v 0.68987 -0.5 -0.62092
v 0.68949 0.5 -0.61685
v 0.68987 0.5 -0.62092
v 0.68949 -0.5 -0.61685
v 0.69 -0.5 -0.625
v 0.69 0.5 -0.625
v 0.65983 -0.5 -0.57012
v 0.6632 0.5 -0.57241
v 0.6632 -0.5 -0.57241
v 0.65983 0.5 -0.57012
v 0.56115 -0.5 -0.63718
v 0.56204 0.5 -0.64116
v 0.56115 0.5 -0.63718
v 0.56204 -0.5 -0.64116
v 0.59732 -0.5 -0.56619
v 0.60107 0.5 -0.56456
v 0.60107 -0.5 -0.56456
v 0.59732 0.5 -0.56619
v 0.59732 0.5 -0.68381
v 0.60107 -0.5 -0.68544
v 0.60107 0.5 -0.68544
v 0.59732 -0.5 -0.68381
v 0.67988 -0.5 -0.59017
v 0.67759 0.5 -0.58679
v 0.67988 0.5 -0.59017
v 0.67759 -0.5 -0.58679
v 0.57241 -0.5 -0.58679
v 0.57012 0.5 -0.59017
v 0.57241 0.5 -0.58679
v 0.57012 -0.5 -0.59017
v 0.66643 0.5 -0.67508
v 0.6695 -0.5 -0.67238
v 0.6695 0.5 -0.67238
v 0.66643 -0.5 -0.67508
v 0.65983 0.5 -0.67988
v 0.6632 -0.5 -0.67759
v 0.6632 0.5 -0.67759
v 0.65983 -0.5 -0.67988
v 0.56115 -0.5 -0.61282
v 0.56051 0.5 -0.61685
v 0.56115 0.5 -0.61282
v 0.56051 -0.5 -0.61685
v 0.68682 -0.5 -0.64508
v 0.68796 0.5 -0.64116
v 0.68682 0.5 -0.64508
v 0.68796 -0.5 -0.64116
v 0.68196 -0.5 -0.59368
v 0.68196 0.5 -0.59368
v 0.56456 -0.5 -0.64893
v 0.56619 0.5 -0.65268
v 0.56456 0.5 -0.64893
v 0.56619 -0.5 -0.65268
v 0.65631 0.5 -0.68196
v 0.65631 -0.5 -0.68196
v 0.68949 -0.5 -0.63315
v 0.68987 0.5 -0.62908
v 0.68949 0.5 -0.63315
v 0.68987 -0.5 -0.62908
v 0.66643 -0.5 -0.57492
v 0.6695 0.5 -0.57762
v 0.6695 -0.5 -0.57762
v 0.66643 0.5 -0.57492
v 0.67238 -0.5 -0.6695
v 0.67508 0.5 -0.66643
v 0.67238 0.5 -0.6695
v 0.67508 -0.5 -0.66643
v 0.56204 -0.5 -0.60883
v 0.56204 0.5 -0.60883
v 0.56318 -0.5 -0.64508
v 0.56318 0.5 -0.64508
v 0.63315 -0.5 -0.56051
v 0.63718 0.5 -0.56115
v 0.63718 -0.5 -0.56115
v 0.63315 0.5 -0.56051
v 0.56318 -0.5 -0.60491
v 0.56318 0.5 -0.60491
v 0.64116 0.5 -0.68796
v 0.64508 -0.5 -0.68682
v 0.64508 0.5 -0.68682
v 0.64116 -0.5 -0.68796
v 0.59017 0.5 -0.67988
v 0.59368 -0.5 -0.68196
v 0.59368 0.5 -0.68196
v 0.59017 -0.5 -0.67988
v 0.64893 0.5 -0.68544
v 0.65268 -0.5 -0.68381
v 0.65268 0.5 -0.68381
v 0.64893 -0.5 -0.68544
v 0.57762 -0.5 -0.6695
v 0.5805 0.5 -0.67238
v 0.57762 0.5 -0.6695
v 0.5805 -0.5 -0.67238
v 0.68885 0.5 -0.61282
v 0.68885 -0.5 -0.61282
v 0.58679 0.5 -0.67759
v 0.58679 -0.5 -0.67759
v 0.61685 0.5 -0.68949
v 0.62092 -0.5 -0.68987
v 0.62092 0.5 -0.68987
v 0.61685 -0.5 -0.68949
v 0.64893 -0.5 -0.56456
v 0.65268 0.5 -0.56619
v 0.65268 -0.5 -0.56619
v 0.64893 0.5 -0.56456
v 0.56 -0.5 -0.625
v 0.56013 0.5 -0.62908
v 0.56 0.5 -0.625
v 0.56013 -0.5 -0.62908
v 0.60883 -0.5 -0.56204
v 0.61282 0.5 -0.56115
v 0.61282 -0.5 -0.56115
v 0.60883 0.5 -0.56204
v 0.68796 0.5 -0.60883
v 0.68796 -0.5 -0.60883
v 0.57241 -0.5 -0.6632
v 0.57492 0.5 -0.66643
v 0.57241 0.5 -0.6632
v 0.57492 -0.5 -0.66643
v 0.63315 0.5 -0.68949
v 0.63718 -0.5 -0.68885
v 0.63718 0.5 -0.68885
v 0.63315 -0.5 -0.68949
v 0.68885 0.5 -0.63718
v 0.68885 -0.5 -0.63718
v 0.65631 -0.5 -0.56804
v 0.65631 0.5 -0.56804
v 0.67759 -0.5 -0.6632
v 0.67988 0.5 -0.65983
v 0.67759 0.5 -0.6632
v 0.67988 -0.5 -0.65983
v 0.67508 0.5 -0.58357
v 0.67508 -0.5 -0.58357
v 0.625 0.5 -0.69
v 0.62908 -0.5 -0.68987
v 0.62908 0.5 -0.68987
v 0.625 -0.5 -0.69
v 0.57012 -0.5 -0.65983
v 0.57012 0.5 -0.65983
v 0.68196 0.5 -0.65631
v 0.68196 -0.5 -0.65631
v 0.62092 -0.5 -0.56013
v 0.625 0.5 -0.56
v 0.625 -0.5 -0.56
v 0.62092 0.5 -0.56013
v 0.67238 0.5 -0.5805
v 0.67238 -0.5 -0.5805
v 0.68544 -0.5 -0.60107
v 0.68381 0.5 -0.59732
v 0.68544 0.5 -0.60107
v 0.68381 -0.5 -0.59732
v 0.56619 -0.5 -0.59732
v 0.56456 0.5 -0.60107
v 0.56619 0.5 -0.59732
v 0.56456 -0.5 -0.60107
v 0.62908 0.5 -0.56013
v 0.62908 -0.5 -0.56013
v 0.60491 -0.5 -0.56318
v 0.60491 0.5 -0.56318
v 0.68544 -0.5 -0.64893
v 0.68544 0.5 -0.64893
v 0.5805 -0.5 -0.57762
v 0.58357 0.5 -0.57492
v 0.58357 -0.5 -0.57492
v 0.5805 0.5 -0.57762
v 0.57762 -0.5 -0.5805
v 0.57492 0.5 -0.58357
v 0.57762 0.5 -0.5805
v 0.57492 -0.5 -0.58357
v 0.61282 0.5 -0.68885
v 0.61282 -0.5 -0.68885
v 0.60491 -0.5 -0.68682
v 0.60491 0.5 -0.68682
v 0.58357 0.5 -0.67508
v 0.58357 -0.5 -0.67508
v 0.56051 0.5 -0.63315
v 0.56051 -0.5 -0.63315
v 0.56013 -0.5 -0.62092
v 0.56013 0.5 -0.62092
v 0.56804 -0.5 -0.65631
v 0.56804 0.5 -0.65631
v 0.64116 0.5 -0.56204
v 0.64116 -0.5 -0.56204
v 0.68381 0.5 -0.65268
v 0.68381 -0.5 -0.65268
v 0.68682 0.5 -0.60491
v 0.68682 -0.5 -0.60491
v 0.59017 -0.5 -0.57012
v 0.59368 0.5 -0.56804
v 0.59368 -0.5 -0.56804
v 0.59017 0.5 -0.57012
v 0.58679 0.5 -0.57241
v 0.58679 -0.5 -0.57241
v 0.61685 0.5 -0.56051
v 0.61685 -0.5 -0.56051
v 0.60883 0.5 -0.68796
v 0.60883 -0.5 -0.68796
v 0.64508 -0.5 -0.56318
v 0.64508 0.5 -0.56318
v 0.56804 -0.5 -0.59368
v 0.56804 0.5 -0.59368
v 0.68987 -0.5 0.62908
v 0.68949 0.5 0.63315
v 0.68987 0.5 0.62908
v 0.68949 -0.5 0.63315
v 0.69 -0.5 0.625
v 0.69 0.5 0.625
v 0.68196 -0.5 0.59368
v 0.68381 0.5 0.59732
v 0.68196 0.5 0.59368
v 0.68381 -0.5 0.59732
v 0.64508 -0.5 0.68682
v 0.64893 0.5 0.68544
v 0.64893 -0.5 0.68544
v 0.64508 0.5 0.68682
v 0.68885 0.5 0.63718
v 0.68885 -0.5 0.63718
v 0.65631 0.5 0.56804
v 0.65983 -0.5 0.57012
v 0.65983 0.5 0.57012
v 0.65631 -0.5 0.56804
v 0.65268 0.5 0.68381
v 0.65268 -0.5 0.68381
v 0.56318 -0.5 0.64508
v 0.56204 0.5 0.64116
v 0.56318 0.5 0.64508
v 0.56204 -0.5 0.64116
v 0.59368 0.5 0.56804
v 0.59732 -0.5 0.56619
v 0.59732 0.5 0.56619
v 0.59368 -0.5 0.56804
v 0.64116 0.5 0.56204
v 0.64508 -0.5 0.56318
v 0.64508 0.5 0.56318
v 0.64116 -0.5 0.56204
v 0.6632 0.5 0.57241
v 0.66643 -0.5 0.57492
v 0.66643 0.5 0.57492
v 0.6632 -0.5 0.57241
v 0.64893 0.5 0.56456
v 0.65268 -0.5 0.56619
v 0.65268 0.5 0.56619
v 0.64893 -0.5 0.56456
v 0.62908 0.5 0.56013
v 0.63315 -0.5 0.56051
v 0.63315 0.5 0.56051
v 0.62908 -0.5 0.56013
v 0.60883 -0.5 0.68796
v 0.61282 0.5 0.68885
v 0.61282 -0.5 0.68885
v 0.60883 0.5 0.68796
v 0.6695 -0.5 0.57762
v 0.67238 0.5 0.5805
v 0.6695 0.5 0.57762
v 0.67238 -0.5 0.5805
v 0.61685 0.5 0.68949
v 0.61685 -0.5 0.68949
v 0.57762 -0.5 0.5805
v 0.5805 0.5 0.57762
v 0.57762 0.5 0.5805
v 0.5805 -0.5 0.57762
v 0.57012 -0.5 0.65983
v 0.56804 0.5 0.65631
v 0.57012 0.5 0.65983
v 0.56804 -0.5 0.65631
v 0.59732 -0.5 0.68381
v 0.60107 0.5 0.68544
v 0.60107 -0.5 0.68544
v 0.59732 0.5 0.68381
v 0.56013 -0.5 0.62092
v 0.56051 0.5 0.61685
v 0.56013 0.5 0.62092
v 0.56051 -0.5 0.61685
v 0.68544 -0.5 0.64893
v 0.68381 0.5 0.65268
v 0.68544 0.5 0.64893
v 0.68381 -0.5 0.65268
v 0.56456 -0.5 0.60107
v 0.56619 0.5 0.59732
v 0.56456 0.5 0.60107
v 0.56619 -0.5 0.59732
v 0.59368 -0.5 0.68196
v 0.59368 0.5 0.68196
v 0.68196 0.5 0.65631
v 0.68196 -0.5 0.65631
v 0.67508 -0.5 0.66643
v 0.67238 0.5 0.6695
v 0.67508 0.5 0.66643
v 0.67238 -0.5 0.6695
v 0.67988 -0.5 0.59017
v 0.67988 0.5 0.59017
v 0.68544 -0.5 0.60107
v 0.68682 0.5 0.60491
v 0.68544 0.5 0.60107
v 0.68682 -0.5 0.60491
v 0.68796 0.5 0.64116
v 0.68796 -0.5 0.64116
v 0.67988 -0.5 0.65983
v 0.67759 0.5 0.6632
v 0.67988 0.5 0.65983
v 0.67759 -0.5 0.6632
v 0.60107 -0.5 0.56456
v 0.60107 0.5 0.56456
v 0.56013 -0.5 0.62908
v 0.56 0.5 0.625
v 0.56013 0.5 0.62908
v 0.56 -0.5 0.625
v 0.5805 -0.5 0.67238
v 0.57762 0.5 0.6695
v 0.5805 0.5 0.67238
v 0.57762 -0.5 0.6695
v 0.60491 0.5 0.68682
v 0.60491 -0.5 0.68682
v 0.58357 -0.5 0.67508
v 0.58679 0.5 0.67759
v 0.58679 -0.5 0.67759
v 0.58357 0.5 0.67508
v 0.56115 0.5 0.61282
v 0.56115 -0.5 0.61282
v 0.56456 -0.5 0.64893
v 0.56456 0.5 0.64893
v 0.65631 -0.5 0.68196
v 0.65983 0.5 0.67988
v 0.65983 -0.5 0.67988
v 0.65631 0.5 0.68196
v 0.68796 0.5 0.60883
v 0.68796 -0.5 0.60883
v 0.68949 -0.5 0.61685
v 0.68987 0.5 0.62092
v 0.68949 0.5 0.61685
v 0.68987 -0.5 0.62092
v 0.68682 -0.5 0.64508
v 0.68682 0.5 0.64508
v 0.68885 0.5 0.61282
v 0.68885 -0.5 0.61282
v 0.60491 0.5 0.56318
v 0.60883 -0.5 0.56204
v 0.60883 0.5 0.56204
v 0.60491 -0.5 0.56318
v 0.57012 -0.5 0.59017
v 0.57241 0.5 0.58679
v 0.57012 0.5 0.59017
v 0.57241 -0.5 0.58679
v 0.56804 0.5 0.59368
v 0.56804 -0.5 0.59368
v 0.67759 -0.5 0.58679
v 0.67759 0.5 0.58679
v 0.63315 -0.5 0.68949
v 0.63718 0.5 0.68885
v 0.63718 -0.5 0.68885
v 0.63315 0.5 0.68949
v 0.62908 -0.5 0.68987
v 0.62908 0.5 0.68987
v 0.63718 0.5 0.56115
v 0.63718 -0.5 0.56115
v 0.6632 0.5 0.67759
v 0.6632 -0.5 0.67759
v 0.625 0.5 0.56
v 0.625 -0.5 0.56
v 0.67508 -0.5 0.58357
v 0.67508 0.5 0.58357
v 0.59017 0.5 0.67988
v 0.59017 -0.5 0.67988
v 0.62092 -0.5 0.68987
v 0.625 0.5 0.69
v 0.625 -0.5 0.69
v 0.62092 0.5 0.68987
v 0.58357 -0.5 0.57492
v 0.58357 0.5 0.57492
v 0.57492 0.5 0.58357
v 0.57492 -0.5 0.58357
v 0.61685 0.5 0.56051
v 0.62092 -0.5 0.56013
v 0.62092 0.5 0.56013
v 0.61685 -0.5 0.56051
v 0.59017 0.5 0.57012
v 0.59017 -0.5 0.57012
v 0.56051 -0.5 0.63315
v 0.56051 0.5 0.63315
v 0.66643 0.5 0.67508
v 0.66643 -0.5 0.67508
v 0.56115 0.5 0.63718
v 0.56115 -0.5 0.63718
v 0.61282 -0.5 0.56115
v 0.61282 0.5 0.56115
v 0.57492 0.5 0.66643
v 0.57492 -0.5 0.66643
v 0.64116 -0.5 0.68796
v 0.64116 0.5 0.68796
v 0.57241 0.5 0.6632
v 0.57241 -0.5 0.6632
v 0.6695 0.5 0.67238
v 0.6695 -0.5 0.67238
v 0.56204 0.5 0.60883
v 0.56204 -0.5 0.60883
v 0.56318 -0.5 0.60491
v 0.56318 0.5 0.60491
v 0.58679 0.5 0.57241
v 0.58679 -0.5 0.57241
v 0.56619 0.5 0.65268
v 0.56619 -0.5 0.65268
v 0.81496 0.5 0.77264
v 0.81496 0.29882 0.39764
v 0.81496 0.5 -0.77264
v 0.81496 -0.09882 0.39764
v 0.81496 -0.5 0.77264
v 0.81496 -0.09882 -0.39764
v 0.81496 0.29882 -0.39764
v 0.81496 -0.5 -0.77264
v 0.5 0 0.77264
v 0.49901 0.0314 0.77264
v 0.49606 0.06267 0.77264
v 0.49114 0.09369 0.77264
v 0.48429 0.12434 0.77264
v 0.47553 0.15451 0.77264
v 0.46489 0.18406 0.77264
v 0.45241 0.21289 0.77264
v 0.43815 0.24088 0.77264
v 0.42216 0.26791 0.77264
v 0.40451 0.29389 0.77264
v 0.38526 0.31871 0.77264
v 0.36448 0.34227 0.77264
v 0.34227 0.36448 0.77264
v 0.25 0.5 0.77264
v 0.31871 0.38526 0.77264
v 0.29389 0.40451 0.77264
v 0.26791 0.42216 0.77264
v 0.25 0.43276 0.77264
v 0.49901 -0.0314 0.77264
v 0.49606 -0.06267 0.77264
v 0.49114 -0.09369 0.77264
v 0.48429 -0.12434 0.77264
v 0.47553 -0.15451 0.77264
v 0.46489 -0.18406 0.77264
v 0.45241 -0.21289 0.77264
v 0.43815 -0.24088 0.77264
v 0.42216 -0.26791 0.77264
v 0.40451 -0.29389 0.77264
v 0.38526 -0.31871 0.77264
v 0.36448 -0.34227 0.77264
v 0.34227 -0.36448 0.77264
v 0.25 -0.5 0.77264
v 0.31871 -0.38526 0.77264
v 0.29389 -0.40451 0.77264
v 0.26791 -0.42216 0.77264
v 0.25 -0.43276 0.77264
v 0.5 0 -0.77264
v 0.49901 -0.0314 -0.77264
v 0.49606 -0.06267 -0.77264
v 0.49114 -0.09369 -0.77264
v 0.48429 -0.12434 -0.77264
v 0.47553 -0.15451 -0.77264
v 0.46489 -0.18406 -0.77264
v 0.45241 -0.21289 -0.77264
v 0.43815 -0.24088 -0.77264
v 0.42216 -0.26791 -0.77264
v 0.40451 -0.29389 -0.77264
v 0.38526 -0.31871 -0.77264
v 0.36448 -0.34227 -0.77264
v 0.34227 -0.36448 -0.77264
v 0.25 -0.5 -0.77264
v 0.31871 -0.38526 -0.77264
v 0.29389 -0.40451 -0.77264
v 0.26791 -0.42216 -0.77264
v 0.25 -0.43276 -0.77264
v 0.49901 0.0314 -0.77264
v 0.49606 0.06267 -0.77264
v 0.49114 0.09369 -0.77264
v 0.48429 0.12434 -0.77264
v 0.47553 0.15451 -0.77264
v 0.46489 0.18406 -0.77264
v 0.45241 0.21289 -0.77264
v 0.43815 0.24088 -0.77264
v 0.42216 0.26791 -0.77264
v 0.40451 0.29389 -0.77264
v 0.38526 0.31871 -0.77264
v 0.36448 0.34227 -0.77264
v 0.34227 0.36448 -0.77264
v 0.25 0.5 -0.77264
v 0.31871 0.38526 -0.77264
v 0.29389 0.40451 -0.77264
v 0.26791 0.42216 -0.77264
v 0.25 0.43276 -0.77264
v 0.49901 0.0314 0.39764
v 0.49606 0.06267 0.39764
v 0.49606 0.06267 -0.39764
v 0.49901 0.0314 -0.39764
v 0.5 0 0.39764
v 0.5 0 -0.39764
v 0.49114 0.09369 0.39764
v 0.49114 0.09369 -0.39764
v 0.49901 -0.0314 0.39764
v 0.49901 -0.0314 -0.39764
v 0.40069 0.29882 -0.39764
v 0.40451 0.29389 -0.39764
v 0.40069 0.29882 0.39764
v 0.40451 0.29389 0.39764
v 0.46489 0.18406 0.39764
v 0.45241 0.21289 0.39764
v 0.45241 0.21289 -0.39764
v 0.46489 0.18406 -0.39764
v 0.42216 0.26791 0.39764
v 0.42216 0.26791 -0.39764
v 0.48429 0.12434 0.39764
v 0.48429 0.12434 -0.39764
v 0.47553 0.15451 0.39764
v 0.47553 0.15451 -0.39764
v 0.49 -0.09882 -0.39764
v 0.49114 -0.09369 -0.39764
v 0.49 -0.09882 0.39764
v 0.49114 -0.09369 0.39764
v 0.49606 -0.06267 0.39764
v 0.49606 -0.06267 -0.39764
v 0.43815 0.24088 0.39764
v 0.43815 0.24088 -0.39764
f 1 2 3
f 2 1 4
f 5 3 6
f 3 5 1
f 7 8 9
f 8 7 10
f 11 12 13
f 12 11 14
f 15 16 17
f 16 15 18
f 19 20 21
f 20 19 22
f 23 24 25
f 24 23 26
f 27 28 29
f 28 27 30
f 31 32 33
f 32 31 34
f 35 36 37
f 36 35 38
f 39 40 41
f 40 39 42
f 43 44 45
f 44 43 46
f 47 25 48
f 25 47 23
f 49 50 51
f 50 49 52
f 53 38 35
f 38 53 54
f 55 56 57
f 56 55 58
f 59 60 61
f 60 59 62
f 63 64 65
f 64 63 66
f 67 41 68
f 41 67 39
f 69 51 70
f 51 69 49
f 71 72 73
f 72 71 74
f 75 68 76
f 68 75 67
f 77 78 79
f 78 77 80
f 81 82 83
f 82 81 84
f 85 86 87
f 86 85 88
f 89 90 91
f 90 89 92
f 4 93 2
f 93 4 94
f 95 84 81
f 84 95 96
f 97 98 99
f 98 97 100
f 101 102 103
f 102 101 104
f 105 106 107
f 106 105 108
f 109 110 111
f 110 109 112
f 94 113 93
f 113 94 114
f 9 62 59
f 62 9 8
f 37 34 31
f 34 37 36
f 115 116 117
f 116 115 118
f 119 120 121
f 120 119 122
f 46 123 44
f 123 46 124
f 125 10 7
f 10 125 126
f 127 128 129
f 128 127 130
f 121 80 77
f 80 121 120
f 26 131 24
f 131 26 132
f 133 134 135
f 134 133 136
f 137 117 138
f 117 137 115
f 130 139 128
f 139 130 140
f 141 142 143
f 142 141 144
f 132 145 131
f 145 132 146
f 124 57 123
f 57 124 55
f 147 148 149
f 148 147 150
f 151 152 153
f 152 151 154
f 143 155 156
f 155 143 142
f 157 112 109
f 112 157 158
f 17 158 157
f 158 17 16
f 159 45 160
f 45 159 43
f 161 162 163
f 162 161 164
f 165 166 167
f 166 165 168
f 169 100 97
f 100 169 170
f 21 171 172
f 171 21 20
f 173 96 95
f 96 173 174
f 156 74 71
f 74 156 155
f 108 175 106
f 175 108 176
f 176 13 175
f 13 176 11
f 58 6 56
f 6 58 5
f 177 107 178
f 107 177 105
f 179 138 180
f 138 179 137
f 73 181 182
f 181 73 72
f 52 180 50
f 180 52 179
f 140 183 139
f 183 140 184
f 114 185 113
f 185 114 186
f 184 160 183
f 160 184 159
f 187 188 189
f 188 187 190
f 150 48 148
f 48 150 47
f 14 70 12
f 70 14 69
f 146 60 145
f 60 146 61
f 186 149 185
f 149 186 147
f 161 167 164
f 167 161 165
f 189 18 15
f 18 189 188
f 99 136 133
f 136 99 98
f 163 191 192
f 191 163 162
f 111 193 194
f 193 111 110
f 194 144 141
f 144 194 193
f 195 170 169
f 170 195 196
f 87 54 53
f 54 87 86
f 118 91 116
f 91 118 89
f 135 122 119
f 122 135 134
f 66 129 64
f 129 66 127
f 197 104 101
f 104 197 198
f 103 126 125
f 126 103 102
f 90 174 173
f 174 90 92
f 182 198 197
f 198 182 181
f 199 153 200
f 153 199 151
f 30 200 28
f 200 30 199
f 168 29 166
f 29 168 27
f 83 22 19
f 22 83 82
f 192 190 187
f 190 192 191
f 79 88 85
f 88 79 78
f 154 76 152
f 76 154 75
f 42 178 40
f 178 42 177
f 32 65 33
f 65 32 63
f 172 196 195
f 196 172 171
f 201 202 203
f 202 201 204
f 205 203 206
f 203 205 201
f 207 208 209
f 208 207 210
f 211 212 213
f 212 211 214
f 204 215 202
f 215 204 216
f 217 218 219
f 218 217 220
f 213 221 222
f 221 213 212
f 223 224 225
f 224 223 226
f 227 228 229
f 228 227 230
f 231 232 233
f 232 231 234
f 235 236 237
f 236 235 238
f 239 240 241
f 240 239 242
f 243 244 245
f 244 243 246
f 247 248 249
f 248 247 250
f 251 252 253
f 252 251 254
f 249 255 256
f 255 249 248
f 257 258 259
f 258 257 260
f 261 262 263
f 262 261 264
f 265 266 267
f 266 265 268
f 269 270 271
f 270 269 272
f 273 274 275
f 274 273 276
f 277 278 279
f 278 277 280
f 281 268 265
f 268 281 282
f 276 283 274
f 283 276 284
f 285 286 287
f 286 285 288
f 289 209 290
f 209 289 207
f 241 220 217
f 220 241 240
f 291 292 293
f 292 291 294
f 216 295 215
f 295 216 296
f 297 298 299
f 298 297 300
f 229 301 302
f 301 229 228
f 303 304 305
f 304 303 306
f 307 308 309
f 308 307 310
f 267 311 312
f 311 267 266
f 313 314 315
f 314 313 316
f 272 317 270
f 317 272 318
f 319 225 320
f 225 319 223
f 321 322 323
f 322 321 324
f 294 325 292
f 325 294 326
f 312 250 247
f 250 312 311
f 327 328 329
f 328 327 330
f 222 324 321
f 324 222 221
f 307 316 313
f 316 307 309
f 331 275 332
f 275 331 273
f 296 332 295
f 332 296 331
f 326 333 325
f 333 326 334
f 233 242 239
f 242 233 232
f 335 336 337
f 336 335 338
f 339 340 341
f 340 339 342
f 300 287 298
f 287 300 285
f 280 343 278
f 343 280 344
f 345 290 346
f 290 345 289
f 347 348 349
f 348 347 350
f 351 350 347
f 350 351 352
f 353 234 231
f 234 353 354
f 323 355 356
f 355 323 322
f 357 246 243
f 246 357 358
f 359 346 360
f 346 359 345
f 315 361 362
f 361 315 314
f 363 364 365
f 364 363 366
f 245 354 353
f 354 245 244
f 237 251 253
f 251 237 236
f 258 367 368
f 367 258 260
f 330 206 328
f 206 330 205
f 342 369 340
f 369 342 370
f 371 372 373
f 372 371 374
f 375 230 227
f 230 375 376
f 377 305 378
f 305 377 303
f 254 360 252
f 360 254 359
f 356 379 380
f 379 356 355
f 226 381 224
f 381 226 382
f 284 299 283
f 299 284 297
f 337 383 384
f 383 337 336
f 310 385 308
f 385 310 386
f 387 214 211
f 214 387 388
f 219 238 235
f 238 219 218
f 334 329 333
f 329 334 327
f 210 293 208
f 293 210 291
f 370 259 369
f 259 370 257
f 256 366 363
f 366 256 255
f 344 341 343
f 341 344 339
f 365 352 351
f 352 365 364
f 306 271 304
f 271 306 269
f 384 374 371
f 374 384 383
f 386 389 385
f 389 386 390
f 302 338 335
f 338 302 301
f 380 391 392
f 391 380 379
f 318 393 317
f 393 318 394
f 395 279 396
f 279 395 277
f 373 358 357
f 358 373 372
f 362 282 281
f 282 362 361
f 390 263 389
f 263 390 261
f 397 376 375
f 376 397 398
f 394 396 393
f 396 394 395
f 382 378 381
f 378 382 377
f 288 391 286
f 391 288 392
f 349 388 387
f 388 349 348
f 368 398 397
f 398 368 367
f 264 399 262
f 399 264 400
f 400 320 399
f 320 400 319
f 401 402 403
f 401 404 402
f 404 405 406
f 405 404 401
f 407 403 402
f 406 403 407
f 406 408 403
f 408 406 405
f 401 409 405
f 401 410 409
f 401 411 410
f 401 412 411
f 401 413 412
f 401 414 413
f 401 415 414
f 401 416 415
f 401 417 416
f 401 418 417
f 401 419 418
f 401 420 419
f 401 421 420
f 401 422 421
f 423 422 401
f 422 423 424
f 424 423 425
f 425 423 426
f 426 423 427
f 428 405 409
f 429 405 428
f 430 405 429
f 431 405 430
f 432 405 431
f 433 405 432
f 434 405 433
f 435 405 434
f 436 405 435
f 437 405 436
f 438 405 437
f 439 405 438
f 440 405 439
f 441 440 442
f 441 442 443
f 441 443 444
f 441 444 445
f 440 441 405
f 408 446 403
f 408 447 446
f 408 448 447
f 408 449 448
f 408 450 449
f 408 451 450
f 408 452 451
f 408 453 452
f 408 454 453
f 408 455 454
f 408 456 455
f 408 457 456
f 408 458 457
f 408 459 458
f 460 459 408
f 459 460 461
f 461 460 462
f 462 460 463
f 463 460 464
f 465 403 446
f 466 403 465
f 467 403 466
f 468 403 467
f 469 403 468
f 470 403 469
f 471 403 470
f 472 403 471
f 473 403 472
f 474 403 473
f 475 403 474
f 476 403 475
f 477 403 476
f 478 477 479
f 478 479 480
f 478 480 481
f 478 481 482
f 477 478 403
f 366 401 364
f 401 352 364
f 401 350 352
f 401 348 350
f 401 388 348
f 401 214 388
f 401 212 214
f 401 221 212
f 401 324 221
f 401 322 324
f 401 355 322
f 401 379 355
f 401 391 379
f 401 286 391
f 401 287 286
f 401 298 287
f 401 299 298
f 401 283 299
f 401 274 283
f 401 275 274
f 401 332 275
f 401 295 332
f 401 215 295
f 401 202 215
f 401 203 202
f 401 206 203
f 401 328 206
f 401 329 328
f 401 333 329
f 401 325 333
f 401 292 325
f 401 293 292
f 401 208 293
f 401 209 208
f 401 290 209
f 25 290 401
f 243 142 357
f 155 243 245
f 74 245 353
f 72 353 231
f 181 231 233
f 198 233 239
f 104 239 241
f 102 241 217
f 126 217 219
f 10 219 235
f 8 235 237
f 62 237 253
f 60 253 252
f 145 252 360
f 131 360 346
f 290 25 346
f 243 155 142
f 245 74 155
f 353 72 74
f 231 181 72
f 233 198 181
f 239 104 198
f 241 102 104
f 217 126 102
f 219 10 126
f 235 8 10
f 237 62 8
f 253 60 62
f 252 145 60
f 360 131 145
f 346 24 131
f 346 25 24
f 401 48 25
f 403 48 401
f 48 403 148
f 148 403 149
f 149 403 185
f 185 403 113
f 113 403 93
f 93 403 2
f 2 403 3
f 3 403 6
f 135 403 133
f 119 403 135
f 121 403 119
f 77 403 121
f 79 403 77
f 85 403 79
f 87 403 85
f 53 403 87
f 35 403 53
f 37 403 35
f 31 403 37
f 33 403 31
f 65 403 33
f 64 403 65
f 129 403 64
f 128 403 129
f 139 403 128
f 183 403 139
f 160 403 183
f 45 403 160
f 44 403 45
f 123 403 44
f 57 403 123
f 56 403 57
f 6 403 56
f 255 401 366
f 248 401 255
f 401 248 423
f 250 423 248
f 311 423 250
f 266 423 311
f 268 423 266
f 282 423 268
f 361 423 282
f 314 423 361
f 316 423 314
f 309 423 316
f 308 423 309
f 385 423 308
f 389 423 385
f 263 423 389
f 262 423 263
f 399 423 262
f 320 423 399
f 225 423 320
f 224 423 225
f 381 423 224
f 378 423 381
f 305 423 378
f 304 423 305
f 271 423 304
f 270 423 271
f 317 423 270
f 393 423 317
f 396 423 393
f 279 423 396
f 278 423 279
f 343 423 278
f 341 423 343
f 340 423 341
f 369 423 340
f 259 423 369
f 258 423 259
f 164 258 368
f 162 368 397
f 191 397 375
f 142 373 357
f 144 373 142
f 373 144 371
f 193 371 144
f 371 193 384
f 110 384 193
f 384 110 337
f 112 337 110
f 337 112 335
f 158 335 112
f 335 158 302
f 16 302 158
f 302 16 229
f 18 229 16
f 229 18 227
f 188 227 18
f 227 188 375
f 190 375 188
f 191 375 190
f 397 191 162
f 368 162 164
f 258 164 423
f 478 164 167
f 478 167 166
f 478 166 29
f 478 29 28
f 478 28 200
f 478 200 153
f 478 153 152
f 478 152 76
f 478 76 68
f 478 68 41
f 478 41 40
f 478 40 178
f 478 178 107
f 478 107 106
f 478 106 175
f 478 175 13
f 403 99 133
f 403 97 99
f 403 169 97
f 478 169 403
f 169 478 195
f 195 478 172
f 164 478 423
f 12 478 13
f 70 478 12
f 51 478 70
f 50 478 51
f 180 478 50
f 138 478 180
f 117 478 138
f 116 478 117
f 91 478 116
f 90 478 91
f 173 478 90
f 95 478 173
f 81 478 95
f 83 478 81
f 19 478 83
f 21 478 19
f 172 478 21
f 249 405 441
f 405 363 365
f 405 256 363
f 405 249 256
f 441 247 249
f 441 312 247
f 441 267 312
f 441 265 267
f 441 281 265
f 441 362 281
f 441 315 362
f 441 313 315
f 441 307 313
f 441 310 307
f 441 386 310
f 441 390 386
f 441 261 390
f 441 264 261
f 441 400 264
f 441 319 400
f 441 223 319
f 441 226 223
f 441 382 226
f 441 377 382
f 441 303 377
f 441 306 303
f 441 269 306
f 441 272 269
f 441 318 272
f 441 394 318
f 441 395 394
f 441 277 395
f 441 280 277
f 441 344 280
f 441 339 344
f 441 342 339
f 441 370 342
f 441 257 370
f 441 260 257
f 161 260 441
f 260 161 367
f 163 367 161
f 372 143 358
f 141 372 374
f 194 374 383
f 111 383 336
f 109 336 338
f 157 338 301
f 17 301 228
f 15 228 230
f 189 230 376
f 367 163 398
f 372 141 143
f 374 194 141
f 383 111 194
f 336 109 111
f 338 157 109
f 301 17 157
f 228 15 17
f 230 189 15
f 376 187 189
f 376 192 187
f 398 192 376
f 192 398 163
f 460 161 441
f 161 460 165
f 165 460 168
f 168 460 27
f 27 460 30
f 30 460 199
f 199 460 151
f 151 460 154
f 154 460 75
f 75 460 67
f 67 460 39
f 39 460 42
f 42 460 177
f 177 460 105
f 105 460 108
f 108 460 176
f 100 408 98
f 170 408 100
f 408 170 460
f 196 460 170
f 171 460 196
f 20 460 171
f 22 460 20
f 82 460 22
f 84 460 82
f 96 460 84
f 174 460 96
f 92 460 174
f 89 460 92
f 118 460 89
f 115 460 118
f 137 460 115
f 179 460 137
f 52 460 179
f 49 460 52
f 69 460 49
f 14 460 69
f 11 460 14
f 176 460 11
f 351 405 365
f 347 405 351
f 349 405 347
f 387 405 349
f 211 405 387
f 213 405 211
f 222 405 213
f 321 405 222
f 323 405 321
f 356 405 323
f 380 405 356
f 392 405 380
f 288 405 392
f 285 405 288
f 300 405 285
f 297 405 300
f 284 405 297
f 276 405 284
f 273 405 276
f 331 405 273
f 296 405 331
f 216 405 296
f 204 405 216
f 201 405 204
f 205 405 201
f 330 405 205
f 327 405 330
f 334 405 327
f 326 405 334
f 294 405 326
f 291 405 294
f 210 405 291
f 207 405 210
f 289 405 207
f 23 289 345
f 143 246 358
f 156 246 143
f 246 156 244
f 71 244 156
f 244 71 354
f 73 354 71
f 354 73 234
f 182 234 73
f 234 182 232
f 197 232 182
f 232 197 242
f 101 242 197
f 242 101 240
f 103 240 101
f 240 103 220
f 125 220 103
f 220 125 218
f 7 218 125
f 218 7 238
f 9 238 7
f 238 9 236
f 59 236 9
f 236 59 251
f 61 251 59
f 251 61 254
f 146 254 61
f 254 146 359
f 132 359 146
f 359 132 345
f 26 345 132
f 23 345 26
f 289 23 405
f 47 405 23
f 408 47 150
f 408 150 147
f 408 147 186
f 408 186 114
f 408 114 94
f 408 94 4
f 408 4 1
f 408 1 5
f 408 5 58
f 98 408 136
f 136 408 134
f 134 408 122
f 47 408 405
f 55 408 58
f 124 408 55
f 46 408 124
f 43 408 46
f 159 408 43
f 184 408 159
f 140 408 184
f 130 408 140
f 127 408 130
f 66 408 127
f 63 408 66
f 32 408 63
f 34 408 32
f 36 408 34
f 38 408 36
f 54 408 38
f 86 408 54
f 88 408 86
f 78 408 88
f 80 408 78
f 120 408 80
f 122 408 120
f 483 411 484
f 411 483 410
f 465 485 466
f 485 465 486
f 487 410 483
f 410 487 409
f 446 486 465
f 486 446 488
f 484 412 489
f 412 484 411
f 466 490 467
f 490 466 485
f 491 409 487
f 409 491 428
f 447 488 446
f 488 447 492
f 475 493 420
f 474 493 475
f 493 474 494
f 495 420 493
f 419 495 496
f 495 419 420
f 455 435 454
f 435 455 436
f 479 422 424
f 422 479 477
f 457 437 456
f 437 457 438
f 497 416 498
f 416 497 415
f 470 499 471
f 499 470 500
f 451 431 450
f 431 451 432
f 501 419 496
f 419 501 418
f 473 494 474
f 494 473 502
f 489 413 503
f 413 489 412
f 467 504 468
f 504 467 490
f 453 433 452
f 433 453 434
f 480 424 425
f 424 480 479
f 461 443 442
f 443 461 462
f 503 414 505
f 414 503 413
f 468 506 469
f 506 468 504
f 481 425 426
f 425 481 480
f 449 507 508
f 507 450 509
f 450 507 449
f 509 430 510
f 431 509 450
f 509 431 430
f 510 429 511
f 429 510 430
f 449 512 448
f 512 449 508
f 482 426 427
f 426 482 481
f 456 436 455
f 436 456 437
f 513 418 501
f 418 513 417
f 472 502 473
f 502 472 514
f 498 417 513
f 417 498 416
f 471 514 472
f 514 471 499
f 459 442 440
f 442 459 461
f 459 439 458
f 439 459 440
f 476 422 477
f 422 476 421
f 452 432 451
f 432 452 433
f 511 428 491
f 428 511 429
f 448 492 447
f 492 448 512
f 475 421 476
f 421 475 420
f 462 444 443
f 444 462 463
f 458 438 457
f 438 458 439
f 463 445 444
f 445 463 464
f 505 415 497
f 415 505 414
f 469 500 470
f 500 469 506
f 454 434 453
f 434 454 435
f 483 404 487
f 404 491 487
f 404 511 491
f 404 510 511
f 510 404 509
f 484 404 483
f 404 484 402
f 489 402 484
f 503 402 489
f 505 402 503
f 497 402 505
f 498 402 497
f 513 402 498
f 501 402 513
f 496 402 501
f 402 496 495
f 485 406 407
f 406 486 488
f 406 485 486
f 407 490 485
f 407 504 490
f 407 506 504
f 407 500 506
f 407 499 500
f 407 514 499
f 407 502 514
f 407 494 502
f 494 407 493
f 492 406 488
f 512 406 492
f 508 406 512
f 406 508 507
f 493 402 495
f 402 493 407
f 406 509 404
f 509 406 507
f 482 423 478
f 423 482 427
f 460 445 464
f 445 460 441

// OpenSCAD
// bream break sensor
beambreakx = 8 / 25.4;
beambreaky = 10.1 / 25.4;
beambreakz = 20.2 / 25.4;
// shifted offset from center of tube
beambreakoffset = 0.1;

// cube through body
tubed = 1.0;
tuber = tubed / 2.;

// main body
cubex = tubed + beambreakx * 2;
cubey = tubed; // + beambreaky * 2;
cubez = beambreakz + 0.75;

// tube clearance
cutoutx = tuber;

// screws
screwd = 0.13;  // 4-40 free fit
screwr = screwd / 2;
screwspacingx = 1.25 / 2;
screwspacingy = 1.25 / 2;

difference() {
    cube(size=[cubex, cubey, cubez], center=true);
    // tube
    cylinder(cubez*2, r=tuber, center=true, $fn=100);
    // beam breaks
    translate([0, beambreakoffset, 0]) {
        cube(size=[cubex*2, beambreaky, beambreakz], center=true);
    };
    
    // tube clearance
    cube(size=[cutoutx, cubey*2, cubez*2], center=true);
    
    // screw holes
    for (x=[-screwspacingx, screwspacingx]) {
        for (y=[-screwspacingy, screwspacingy]) {
            
            
            rotate([90, 0, 0])
            translate([x, y, 0])
            cylinder(cubey*2, r=screwr, center=true, $fn=100);
        };
    };
    
    // select only 1
    translate([-cubex, 0, 0]) cube(size=[cubex*2, cubey*2, cubez*2], center=true);
};
